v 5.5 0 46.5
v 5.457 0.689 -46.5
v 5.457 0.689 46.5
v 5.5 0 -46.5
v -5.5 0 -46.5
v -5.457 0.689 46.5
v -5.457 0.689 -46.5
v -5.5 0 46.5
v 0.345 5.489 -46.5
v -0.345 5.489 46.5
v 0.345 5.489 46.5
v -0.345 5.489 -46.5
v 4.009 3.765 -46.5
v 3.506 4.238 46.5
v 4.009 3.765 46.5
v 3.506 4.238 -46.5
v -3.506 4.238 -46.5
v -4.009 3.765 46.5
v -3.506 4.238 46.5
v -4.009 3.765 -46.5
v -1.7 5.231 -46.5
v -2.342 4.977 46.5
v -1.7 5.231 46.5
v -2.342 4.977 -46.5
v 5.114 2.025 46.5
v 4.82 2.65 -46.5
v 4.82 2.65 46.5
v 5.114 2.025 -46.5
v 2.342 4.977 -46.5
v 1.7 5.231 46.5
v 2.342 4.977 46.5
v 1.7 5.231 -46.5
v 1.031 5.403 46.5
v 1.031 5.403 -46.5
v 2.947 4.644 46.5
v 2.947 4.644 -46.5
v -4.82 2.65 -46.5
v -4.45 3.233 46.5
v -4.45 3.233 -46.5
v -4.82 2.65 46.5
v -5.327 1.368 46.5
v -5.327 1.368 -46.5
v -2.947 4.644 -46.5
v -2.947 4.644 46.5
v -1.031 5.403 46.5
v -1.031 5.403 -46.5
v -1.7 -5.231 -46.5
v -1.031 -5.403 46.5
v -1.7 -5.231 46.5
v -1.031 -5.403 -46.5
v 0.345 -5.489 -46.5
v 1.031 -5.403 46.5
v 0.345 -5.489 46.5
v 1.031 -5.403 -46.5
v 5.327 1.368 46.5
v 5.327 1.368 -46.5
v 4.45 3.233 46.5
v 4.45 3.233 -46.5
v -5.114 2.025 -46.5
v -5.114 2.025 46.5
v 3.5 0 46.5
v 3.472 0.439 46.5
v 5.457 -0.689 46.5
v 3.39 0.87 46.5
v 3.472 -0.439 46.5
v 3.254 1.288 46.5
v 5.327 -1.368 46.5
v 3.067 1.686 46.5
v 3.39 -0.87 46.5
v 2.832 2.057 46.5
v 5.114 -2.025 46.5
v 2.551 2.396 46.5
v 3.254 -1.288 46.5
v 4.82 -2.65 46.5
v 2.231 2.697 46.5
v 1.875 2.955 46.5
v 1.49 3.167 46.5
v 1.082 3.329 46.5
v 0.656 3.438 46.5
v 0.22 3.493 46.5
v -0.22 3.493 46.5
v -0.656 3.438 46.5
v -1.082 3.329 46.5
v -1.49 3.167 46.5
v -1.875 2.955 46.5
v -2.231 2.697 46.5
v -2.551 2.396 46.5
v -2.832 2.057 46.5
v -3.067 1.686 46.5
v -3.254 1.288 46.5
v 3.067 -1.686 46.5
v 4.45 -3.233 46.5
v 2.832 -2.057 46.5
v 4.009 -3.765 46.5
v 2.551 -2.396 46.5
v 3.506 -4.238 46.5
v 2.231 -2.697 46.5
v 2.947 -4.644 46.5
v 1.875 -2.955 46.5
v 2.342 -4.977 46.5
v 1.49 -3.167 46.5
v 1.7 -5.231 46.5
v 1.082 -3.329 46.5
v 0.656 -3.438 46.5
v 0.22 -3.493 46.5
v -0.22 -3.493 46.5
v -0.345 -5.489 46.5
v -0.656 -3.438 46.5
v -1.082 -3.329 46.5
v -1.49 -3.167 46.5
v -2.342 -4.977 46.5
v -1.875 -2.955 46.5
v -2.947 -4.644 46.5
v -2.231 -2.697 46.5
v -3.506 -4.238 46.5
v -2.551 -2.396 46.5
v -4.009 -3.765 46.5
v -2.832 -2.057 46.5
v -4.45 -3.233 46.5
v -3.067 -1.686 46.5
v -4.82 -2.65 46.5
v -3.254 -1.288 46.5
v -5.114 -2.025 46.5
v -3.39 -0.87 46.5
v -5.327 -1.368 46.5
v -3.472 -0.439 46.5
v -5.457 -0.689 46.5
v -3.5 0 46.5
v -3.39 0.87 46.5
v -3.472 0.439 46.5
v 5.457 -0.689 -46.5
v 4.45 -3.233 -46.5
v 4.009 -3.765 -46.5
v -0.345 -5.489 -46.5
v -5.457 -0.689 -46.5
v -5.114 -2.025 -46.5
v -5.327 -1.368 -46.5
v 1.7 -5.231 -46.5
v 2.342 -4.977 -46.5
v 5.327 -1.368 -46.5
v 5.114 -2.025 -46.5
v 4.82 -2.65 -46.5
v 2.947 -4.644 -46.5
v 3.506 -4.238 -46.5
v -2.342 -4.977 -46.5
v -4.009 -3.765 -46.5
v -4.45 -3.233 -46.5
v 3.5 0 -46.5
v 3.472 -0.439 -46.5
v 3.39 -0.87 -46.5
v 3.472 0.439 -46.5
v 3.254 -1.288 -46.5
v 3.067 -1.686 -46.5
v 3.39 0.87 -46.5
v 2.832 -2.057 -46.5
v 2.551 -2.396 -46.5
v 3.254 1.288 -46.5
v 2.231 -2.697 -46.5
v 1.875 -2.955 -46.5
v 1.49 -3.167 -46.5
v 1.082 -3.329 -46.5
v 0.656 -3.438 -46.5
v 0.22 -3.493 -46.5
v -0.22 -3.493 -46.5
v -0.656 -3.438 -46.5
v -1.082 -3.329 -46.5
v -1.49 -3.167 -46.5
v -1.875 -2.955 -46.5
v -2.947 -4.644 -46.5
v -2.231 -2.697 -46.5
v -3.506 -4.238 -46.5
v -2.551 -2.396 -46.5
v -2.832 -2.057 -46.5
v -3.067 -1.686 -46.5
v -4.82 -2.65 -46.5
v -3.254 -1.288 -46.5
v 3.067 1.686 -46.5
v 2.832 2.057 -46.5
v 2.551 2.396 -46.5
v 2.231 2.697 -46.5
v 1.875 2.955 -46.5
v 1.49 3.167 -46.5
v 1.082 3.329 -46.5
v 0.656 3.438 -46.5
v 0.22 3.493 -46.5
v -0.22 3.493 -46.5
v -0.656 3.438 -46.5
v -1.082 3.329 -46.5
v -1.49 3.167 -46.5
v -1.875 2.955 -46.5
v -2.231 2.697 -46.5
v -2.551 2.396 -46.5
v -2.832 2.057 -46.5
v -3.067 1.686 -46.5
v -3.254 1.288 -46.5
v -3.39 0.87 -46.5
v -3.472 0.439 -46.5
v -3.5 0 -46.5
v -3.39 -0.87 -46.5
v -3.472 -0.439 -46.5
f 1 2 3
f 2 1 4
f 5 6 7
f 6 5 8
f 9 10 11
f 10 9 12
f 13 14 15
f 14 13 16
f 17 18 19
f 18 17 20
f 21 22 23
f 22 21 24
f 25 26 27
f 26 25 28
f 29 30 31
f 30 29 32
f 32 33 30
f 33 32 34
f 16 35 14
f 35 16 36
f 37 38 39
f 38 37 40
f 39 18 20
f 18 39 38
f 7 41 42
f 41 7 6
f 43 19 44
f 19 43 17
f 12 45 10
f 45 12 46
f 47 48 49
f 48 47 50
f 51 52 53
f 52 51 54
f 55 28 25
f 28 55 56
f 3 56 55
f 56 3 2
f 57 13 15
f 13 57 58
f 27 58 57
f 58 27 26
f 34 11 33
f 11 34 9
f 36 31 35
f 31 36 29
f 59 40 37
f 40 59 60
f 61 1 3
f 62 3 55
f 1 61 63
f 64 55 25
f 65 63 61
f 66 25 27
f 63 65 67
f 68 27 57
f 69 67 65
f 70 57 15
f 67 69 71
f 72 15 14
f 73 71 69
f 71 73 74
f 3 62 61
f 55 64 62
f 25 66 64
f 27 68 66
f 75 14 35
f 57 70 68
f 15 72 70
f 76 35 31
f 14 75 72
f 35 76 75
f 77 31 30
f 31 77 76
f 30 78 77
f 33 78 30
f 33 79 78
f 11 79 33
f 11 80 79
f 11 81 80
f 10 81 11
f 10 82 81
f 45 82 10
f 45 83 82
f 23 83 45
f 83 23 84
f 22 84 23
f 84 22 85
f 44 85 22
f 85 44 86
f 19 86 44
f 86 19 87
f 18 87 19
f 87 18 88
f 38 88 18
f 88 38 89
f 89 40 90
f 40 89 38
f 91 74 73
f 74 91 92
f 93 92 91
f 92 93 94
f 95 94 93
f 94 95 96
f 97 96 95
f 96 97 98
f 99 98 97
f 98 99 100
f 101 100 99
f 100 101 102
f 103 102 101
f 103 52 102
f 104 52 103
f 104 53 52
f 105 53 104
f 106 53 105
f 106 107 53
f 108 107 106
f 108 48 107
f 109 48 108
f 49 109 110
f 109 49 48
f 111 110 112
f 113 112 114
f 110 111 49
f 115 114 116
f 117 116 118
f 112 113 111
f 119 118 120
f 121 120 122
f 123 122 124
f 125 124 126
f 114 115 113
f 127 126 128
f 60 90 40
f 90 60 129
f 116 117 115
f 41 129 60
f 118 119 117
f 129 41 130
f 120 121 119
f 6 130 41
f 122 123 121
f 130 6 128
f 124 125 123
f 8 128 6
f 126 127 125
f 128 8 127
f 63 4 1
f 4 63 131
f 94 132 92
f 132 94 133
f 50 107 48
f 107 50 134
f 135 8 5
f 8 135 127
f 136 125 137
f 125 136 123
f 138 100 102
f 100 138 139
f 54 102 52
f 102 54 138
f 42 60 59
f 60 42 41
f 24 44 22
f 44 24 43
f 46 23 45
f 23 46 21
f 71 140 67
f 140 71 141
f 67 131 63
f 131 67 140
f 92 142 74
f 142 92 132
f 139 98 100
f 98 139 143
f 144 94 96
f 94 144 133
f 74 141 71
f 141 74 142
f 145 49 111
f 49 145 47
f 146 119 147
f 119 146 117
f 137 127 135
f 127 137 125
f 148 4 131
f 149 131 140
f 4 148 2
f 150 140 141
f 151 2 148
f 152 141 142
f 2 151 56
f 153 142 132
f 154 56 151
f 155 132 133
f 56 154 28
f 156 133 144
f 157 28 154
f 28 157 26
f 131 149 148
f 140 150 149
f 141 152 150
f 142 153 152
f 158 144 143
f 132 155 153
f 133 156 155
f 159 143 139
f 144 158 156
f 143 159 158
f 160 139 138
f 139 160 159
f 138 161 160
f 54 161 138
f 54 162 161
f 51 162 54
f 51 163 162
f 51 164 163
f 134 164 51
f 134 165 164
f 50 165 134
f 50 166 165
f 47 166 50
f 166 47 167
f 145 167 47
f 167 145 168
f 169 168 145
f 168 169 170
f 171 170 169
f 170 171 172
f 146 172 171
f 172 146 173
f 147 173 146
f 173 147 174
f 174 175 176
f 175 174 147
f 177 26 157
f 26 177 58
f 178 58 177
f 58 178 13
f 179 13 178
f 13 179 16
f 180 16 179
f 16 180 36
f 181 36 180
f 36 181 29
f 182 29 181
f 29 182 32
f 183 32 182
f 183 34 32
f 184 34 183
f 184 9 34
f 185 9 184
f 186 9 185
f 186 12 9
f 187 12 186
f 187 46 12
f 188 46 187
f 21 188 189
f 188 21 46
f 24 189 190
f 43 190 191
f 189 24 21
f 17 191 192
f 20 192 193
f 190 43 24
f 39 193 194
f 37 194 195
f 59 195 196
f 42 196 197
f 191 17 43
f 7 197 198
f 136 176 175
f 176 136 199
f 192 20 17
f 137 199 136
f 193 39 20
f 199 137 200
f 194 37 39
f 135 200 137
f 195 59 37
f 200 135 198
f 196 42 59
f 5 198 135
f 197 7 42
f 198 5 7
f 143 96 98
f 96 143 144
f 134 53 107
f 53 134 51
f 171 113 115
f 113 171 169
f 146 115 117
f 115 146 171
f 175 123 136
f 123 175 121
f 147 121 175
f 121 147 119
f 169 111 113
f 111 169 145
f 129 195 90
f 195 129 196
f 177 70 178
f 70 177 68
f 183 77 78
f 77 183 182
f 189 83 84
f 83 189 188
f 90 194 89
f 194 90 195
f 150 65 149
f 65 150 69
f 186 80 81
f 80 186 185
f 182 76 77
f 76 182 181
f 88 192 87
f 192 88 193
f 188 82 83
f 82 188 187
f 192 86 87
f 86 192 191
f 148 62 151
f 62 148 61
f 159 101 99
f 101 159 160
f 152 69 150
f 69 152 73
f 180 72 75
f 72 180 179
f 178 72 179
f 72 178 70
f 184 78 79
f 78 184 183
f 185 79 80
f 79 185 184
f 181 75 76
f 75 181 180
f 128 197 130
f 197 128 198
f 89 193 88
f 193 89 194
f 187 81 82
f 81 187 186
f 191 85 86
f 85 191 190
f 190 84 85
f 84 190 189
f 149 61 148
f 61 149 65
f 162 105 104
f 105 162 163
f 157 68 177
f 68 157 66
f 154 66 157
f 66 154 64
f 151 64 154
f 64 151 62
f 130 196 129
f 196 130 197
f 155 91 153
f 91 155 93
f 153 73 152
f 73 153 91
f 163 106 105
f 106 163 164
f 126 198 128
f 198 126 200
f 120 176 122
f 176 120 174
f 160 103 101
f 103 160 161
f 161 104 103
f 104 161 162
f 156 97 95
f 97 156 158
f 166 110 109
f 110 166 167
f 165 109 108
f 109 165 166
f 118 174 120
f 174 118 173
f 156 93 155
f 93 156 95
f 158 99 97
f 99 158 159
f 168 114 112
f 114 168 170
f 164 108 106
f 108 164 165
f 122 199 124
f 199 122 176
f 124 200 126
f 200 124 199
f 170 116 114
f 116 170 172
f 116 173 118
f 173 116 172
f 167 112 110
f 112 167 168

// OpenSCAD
$fn = 50;


difference() {
	union() {
		translate(v = [0, 0, -46.5000000000]) {
			cylinder(h = 93, r = 5.5000000000);
		}
	}
	union() {
		translate(v = [0, 0, -100.0000000000]) {
			cylinder(h = 200, r = 3.5000000000);
		}
	}
}
